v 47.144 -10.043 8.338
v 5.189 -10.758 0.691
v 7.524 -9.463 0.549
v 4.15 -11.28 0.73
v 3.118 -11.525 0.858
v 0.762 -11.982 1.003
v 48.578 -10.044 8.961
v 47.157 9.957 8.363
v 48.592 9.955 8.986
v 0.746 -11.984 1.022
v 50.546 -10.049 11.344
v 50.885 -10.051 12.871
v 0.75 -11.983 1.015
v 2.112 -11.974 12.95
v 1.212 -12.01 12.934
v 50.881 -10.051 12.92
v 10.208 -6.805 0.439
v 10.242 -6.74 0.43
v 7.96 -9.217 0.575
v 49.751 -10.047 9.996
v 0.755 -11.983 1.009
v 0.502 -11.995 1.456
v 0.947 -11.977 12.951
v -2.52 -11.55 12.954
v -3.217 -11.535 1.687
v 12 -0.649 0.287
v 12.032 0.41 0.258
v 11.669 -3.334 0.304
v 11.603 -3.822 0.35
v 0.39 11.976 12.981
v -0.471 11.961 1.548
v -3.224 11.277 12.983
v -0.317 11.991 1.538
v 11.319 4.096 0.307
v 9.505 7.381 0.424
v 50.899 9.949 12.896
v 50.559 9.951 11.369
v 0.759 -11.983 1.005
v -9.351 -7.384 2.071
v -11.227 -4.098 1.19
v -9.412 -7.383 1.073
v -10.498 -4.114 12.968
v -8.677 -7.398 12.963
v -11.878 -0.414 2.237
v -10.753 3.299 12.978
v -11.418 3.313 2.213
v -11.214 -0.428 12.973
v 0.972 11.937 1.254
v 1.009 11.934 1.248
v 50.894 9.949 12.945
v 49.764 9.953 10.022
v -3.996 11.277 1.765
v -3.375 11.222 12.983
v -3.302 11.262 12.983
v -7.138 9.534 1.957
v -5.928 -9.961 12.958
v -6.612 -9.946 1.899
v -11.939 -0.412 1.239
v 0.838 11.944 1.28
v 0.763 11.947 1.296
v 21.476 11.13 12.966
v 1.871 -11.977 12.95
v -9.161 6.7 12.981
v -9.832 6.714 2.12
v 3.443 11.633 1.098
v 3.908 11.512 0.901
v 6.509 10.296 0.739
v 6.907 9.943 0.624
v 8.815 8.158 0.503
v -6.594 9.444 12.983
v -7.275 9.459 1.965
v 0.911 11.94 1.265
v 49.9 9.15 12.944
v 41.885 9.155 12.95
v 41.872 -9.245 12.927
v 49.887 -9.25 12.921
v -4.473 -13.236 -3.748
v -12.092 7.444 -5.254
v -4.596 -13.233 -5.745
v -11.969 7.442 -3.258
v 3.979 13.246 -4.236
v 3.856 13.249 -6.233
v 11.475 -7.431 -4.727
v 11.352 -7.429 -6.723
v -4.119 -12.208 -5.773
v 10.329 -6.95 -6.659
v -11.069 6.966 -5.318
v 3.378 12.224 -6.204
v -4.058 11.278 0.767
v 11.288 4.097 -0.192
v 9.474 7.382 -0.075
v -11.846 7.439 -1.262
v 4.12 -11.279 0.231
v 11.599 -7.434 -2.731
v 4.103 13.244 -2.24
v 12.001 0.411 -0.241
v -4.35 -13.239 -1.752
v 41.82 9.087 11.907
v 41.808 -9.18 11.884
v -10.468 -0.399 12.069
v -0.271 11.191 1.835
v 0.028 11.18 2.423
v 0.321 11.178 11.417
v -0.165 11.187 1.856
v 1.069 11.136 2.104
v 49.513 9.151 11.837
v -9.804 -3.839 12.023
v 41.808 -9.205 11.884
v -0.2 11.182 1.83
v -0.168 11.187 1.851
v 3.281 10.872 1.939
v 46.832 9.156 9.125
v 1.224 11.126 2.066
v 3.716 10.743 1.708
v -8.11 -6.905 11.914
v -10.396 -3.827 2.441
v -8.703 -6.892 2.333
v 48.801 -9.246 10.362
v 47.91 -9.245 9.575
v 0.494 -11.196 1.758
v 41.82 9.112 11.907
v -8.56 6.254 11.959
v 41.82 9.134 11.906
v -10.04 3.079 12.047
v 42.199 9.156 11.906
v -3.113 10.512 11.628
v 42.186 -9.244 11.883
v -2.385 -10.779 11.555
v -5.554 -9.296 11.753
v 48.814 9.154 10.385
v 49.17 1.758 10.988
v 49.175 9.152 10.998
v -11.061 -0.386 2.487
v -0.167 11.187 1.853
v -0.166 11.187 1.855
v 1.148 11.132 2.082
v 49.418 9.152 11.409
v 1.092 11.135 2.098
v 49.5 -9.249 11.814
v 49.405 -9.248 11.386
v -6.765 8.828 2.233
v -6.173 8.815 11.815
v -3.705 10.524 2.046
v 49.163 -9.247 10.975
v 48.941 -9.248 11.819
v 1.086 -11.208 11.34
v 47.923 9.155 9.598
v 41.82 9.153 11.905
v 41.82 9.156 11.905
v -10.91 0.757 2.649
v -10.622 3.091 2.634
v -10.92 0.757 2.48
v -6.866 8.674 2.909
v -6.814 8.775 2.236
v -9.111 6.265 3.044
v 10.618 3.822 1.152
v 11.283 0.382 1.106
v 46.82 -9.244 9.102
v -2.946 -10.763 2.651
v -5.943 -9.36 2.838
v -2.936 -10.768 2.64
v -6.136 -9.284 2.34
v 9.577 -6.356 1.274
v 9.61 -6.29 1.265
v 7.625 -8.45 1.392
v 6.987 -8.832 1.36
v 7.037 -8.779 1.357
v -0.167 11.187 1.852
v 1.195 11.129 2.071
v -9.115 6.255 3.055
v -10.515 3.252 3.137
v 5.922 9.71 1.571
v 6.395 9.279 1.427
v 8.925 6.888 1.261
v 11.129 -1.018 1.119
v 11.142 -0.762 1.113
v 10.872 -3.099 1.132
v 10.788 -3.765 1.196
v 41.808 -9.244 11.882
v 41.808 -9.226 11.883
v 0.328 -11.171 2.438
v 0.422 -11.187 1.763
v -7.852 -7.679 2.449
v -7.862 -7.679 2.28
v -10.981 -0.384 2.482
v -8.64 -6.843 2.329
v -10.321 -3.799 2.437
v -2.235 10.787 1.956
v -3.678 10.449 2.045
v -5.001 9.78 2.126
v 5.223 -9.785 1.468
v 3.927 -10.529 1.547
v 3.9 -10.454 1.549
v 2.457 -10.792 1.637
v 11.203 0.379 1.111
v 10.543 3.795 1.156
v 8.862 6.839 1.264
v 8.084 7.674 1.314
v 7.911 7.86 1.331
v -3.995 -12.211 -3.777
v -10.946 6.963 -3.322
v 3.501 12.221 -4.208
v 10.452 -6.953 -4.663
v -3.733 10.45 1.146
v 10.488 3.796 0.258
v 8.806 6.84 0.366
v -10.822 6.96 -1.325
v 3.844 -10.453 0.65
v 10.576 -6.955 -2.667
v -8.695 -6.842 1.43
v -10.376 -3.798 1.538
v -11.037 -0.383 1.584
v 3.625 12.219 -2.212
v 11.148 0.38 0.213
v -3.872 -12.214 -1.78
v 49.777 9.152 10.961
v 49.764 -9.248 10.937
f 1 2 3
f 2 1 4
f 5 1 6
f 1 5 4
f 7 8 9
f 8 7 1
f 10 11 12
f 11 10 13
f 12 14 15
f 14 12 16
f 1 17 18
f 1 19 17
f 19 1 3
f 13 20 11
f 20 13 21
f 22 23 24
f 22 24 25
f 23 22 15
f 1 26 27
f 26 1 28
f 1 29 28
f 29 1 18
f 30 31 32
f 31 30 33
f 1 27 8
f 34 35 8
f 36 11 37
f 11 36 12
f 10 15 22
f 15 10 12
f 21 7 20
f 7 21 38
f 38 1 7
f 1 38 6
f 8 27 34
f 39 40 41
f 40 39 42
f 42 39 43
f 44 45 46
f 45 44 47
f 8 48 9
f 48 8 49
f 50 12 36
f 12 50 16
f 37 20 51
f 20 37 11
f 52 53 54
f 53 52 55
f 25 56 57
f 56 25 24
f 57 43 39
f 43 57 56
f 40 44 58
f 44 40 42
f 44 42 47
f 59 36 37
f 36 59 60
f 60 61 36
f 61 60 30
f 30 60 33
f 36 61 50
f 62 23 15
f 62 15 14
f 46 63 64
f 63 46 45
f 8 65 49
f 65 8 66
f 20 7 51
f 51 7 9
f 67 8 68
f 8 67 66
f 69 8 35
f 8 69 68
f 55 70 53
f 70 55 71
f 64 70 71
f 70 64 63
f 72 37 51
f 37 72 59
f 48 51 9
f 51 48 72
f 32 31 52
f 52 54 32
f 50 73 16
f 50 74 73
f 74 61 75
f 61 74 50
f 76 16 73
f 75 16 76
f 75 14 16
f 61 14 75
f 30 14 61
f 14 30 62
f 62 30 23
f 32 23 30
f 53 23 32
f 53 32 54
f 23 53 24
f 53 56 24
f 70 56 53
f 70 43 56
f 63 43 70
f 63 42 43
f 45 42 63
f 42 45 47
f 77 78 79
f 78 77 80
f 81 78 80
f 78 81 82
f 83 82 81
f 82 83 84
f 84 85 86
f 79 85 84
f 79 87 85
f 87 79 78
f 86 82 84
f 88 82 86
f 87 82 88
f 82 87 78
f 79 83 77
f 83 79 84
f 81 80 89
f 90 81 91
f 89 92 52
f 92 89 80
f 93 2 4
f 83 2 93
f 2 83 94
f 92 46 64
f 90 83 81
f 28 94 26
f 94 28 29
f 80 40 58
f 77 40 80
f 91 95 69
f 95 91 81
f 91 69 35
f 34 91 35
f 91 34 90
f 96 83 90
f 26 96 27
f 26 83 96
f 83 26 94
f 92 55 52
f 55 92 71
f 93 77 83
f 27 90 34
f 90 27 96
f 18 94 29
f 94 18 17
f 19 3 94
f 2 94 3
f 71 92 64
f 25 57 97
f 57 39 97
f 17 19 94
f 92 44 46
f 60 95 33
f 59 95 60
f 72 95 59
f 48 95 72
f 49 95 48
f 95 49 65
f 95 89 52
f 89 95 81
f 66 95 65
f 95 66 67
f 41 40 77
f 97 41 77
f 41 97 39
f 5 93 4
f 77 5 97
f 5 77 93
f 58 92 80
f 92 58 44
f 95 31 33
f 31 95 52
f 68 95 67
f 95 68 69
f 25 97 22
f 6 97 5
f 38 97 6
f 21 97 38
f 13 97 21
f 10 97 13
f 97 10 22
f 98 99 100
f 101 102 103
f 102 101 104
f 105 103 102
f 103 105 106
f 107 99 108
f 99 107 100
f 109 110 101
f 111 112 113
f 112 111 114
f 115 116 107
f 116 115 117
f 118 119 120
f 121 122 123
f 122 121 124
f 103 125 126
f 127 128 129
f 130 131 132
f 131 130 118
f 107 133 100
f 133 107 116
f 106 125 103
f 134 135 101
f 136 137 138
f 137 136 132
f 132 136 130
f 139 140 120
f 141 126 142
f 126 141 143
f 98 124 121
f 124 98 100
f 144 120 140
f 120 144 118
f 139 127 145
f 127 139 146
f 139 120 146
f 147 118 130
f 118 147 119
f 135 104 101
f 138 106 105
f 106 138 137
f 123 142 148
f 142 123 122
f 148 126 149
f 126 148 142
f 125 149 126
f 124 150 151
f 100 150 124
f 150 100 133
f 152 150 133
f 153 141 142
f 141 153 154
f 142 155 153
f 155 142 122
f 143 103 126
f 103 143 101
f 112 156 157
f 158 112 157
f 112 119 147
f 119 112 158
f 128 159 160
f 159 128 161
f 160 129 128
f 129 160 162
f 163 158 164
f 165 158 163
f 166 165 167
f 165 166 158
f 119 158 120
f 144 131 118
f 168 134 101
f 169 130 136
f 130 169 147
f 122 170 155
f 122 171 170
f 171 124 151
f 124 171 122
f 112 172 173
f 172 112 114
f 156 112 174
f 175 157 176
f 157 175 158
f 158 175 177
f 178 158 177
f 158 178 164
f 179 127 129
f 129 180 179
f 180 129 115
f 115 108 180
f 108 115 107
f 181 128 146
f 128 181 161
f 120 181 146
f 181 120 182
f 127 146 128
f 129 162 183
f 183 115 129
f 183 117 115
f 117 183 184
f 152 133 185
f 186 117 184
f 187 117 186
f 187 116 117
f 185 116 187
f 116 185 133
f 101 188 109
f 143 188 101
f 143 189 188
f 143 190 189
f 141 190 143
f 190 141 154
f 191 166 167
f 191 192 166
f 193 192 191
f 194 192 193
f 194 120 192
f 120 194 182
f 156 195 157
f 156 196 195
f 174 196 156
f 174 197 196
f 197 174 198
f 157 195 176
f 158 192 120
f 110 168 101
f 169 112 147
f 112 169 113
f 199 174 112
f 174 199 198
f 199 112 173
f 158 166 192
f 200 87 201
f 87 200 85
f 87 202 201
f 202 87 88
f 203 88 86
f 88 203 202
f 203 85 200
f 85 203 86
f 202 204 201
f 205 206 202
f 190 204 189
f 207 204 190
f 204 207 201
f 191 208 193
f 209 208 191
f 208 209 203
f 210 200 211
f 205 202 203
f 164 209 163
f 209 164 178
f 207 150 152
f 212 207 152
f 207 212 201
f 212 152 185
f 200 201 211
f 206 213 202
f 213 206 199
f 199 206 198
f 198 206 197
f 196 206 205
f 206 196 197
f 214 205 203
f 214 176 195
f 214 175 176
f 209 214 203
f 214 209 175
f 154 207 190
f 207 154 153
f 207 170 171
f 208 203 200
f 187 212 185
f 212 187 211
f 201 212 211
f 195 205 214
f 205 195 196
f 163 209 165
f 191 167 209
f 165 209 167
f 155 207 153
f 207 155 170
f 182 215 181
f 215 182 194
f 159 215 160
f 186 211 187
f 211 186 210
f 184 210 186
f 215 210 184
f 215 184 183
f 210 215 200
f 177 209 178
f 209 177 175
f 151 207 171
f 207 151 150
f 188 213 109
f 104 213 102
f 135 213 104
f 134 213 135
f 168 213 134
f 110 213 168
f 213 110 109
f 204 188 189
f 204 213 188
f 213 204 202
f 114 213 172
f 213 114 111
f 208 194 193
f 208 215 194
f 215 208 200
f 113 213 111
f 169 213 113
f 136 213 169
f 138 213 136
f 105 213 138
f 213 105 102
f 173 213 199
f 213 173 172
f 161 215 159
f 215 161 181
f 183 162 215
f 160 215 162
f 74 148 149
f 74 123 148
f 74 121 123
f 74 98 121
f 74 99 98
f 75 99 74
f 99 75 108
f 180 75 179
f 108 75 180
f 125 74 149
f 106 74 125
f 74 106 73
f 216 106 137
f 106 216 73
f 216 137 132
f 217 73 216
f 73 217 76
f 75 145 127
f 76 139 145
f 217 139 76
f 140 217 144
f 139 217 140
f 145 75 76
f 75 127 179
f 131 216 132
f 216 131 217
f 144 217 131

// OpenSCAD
$fn=20;

//airduct_short_print();
airduct_long_print();

/*
main_frame();
bolt_tighter();
fanmountinghole();mirror([1,0,0])fanmountinghole();

nozzle();
translate([45,-20,-2])rotate([0,-90,0])ductedfan();
translate([-50,-20,-54])rotate([0,90,0])ductedfan();

translate([37.5,-22,-12])airduct_short(-20,0);
translate([-42.5,-22,-44])airduct_long(-20,0);
*/

module main_frame(){

    difference(){
        hull(){
            translate([-23.8,-23.8,0])cylinder(d=1.5,h=18);
            translate([23.8,-23.8,0])cylinder(d=1.5,h=18);
            translate([23.8,29,0])cylinder(d=1.5,h=18);
            translate([19,34,0])cylinder(d=1.5,h=18);
            translate([-19,34,0])cylinder(d=1.5,h=18);
            translate([-23.8,29,0])cylinder(d=1.5,h=18);
        }

        hull(){
            translate([-20.65,-20.76,-5])cylinder(d=1.5,h=30);
            translate([20.65,-20.76,-5])cylinder(d=1.5,h=30);
            translate([17.9,24.5,-5])rotate([0,0,45])cube([4.95,4.95,30]);
            translate([-17.9,24.5,-5])rotate([0,0,45])cube([4.95,4.95,30]);
        }

        translate([0,26.5,-5])rotate([0,0,45])cube([4.95,4.95,30]);
        translate([0,30,0])cube([2.5,15,60],center=true);

        translate([-28,-11.5,10])rotate([0,15,0])cylinder(d=8,h=20,center=true);
        translate([28,-11.5,10])rotate([0,-15,0])cylinder(d=8,h=20,center=true);
        
        translate([0,-20.7,20])rotate([45,0,0])cube([20.65*2+1.5,5,5],center=true);
    }
}

module bolt_tighter(){
    translate([0,34,0])difference(){
        translate([-6.5,0,0])cube([13,11,18]);
        translate([0,0,0])cube([2.5,25,60], center=true);

        translate([0,12,19])rotate([45,0,0])cube([20,5,5], center=true);
        translate([0,12,-1])rotate([45,0,0])cube([20,5,5], center=true);
    
        translate([0,6,9])rotate([0,90,0])cylinder(d=4.5,h=20,center=true);
    }
}

module ductedfan(){
    color("DARKGRAY")difference(){
        union(){
                translate([-51/2,51/2+2,0]){
                translate([-1.5,0,0]){
                    difference(){
                        scale([1.06,1,1])cylinder(d=51,h=15);
                        translate([0,0,-1])cylinder(d=30,h=3);
                    }   
                }
                translate([5.5,-27.5,0])cube([20,27.5,15]);
            }
            
            hull(){
                translate([-47,7,0])cylinder(d=6,h=15);
                translate([-4,45,0])cylinder(d=6,h=15);
            }
        }

        translate([-47,7,-1])cylinder(d=4,h=20);
        translate([-4,45,-1])cylinder(d=4,h=20);
        
        translate([-20+(20-17.5)/2,-1,(15-12.5)/2])cube([17.5,10,12.5]);
    }   
    
}

module fanmountinghole(){
    
    
    translate([22+10,29-6,0]){
        difference(){
            hull(){
                cylinder(d=10, h=5);
                translate([-8,0,2.5])cube([1,12,5], center=true);
            }
            
            cylinder(d=3.5, h=15, center=true); // hole
        }
    }
}

module nozzle(){
    translate([11,-25-15,-24])rotate([-90,90,0]){
        cylinder(d1=2,d2=10,h=10);
        translate([-11,-16,10])cube([22,22,13]);
    }
}

module airduct_short_print(){
    rotate([0,20,-5])translate([37.5,-22,-12]){
        difference(){
            airduct_short(-20,0);
            airduct_short(-20,0.8);
            rotate([0,-20,0])translate([-13.5,-14-0.5,0])cube([7,2,20-1.6], center=true);
        }
    }
}
    
module airduct_short(r,w){
    hull(){
        translate([0,3,0])cube([17-w*2,2,22-w*2], center=true);
        translate([0,1,0])cube([15-w*2,2,20-w*2], center=true);
    }
    sgn=sign(r);
    step=4/abs(r);
    //echo (sign(r));
    
    hull()for(i=[0:1:abs(r)*2]){
        rotate([0,sgn*i*(i/abs(r)/4),0])translate([0,-i*step,0])cube([15-w*2,step+0.01,20-w*2], center=true);
    }
    rotate([0,-20,0])translate([0,-9,0])cube([15-w*2,2,20-w*2], center=true);
    
        hull()rotate([0,r,0]){
            translate([0,-8-2.5,0])cube([15-w*2,5-w*2,20-w*2], center=true);
            translate([-17,-14,0])cube([2-w*2,2,20-w*2], center=true);
            translate([-15,-12-w,0])cylinder(d=3,h=20-w*2,center=true);
        }
}

module airduct_long_print(){
    rotate([-88.72,3.3,20]){
        difference(){
            airduct_long(20,0);
            airduct_long(20,0.8);
            rotate([0,20,0])translate([45,-16,0])cube([8,4,18.4],center=true);
            
            //translate([-40,-30,0])cube([100,100,50]);
        }
        
    }
}

module airduct_long(r,w){
    translate([0,5,0])cube([17-w*2,2,22-w*2], center=true);
    hull(){
        translate([0,3,0])cube([17-w*2,2,22-w*2], center=true);
        translate([0,-1-w,0])rotate([90,0,0])cylinder(d=24-w*2.2,h=1+w, center=true);
    }

    difference(){
      hull(){
        translate([0,-7+w/2,0])rotate([90,0,0])cylinder(d=24-w*2,h=12-w*3, center=true);
        rotate([0,r,0]){
            //translate([40,-12+w/2,0])cube([2-w*2,4-w*3,20-w*2], center=true);
            translate([45,-16+w/2,0])difference(){
                cylinder(d=10-w*3,h=20-w*2,center=true);
                translate([0,-25.7+w*2,0])rotate([0,0,-3])cube([50,50,50], center=true);
            }
        }
      }
        rotate([0,r,0])translate([0,-18,0])rotate([0,0,-3.5])cube([100,10,100], center=true);
        
    }
}
